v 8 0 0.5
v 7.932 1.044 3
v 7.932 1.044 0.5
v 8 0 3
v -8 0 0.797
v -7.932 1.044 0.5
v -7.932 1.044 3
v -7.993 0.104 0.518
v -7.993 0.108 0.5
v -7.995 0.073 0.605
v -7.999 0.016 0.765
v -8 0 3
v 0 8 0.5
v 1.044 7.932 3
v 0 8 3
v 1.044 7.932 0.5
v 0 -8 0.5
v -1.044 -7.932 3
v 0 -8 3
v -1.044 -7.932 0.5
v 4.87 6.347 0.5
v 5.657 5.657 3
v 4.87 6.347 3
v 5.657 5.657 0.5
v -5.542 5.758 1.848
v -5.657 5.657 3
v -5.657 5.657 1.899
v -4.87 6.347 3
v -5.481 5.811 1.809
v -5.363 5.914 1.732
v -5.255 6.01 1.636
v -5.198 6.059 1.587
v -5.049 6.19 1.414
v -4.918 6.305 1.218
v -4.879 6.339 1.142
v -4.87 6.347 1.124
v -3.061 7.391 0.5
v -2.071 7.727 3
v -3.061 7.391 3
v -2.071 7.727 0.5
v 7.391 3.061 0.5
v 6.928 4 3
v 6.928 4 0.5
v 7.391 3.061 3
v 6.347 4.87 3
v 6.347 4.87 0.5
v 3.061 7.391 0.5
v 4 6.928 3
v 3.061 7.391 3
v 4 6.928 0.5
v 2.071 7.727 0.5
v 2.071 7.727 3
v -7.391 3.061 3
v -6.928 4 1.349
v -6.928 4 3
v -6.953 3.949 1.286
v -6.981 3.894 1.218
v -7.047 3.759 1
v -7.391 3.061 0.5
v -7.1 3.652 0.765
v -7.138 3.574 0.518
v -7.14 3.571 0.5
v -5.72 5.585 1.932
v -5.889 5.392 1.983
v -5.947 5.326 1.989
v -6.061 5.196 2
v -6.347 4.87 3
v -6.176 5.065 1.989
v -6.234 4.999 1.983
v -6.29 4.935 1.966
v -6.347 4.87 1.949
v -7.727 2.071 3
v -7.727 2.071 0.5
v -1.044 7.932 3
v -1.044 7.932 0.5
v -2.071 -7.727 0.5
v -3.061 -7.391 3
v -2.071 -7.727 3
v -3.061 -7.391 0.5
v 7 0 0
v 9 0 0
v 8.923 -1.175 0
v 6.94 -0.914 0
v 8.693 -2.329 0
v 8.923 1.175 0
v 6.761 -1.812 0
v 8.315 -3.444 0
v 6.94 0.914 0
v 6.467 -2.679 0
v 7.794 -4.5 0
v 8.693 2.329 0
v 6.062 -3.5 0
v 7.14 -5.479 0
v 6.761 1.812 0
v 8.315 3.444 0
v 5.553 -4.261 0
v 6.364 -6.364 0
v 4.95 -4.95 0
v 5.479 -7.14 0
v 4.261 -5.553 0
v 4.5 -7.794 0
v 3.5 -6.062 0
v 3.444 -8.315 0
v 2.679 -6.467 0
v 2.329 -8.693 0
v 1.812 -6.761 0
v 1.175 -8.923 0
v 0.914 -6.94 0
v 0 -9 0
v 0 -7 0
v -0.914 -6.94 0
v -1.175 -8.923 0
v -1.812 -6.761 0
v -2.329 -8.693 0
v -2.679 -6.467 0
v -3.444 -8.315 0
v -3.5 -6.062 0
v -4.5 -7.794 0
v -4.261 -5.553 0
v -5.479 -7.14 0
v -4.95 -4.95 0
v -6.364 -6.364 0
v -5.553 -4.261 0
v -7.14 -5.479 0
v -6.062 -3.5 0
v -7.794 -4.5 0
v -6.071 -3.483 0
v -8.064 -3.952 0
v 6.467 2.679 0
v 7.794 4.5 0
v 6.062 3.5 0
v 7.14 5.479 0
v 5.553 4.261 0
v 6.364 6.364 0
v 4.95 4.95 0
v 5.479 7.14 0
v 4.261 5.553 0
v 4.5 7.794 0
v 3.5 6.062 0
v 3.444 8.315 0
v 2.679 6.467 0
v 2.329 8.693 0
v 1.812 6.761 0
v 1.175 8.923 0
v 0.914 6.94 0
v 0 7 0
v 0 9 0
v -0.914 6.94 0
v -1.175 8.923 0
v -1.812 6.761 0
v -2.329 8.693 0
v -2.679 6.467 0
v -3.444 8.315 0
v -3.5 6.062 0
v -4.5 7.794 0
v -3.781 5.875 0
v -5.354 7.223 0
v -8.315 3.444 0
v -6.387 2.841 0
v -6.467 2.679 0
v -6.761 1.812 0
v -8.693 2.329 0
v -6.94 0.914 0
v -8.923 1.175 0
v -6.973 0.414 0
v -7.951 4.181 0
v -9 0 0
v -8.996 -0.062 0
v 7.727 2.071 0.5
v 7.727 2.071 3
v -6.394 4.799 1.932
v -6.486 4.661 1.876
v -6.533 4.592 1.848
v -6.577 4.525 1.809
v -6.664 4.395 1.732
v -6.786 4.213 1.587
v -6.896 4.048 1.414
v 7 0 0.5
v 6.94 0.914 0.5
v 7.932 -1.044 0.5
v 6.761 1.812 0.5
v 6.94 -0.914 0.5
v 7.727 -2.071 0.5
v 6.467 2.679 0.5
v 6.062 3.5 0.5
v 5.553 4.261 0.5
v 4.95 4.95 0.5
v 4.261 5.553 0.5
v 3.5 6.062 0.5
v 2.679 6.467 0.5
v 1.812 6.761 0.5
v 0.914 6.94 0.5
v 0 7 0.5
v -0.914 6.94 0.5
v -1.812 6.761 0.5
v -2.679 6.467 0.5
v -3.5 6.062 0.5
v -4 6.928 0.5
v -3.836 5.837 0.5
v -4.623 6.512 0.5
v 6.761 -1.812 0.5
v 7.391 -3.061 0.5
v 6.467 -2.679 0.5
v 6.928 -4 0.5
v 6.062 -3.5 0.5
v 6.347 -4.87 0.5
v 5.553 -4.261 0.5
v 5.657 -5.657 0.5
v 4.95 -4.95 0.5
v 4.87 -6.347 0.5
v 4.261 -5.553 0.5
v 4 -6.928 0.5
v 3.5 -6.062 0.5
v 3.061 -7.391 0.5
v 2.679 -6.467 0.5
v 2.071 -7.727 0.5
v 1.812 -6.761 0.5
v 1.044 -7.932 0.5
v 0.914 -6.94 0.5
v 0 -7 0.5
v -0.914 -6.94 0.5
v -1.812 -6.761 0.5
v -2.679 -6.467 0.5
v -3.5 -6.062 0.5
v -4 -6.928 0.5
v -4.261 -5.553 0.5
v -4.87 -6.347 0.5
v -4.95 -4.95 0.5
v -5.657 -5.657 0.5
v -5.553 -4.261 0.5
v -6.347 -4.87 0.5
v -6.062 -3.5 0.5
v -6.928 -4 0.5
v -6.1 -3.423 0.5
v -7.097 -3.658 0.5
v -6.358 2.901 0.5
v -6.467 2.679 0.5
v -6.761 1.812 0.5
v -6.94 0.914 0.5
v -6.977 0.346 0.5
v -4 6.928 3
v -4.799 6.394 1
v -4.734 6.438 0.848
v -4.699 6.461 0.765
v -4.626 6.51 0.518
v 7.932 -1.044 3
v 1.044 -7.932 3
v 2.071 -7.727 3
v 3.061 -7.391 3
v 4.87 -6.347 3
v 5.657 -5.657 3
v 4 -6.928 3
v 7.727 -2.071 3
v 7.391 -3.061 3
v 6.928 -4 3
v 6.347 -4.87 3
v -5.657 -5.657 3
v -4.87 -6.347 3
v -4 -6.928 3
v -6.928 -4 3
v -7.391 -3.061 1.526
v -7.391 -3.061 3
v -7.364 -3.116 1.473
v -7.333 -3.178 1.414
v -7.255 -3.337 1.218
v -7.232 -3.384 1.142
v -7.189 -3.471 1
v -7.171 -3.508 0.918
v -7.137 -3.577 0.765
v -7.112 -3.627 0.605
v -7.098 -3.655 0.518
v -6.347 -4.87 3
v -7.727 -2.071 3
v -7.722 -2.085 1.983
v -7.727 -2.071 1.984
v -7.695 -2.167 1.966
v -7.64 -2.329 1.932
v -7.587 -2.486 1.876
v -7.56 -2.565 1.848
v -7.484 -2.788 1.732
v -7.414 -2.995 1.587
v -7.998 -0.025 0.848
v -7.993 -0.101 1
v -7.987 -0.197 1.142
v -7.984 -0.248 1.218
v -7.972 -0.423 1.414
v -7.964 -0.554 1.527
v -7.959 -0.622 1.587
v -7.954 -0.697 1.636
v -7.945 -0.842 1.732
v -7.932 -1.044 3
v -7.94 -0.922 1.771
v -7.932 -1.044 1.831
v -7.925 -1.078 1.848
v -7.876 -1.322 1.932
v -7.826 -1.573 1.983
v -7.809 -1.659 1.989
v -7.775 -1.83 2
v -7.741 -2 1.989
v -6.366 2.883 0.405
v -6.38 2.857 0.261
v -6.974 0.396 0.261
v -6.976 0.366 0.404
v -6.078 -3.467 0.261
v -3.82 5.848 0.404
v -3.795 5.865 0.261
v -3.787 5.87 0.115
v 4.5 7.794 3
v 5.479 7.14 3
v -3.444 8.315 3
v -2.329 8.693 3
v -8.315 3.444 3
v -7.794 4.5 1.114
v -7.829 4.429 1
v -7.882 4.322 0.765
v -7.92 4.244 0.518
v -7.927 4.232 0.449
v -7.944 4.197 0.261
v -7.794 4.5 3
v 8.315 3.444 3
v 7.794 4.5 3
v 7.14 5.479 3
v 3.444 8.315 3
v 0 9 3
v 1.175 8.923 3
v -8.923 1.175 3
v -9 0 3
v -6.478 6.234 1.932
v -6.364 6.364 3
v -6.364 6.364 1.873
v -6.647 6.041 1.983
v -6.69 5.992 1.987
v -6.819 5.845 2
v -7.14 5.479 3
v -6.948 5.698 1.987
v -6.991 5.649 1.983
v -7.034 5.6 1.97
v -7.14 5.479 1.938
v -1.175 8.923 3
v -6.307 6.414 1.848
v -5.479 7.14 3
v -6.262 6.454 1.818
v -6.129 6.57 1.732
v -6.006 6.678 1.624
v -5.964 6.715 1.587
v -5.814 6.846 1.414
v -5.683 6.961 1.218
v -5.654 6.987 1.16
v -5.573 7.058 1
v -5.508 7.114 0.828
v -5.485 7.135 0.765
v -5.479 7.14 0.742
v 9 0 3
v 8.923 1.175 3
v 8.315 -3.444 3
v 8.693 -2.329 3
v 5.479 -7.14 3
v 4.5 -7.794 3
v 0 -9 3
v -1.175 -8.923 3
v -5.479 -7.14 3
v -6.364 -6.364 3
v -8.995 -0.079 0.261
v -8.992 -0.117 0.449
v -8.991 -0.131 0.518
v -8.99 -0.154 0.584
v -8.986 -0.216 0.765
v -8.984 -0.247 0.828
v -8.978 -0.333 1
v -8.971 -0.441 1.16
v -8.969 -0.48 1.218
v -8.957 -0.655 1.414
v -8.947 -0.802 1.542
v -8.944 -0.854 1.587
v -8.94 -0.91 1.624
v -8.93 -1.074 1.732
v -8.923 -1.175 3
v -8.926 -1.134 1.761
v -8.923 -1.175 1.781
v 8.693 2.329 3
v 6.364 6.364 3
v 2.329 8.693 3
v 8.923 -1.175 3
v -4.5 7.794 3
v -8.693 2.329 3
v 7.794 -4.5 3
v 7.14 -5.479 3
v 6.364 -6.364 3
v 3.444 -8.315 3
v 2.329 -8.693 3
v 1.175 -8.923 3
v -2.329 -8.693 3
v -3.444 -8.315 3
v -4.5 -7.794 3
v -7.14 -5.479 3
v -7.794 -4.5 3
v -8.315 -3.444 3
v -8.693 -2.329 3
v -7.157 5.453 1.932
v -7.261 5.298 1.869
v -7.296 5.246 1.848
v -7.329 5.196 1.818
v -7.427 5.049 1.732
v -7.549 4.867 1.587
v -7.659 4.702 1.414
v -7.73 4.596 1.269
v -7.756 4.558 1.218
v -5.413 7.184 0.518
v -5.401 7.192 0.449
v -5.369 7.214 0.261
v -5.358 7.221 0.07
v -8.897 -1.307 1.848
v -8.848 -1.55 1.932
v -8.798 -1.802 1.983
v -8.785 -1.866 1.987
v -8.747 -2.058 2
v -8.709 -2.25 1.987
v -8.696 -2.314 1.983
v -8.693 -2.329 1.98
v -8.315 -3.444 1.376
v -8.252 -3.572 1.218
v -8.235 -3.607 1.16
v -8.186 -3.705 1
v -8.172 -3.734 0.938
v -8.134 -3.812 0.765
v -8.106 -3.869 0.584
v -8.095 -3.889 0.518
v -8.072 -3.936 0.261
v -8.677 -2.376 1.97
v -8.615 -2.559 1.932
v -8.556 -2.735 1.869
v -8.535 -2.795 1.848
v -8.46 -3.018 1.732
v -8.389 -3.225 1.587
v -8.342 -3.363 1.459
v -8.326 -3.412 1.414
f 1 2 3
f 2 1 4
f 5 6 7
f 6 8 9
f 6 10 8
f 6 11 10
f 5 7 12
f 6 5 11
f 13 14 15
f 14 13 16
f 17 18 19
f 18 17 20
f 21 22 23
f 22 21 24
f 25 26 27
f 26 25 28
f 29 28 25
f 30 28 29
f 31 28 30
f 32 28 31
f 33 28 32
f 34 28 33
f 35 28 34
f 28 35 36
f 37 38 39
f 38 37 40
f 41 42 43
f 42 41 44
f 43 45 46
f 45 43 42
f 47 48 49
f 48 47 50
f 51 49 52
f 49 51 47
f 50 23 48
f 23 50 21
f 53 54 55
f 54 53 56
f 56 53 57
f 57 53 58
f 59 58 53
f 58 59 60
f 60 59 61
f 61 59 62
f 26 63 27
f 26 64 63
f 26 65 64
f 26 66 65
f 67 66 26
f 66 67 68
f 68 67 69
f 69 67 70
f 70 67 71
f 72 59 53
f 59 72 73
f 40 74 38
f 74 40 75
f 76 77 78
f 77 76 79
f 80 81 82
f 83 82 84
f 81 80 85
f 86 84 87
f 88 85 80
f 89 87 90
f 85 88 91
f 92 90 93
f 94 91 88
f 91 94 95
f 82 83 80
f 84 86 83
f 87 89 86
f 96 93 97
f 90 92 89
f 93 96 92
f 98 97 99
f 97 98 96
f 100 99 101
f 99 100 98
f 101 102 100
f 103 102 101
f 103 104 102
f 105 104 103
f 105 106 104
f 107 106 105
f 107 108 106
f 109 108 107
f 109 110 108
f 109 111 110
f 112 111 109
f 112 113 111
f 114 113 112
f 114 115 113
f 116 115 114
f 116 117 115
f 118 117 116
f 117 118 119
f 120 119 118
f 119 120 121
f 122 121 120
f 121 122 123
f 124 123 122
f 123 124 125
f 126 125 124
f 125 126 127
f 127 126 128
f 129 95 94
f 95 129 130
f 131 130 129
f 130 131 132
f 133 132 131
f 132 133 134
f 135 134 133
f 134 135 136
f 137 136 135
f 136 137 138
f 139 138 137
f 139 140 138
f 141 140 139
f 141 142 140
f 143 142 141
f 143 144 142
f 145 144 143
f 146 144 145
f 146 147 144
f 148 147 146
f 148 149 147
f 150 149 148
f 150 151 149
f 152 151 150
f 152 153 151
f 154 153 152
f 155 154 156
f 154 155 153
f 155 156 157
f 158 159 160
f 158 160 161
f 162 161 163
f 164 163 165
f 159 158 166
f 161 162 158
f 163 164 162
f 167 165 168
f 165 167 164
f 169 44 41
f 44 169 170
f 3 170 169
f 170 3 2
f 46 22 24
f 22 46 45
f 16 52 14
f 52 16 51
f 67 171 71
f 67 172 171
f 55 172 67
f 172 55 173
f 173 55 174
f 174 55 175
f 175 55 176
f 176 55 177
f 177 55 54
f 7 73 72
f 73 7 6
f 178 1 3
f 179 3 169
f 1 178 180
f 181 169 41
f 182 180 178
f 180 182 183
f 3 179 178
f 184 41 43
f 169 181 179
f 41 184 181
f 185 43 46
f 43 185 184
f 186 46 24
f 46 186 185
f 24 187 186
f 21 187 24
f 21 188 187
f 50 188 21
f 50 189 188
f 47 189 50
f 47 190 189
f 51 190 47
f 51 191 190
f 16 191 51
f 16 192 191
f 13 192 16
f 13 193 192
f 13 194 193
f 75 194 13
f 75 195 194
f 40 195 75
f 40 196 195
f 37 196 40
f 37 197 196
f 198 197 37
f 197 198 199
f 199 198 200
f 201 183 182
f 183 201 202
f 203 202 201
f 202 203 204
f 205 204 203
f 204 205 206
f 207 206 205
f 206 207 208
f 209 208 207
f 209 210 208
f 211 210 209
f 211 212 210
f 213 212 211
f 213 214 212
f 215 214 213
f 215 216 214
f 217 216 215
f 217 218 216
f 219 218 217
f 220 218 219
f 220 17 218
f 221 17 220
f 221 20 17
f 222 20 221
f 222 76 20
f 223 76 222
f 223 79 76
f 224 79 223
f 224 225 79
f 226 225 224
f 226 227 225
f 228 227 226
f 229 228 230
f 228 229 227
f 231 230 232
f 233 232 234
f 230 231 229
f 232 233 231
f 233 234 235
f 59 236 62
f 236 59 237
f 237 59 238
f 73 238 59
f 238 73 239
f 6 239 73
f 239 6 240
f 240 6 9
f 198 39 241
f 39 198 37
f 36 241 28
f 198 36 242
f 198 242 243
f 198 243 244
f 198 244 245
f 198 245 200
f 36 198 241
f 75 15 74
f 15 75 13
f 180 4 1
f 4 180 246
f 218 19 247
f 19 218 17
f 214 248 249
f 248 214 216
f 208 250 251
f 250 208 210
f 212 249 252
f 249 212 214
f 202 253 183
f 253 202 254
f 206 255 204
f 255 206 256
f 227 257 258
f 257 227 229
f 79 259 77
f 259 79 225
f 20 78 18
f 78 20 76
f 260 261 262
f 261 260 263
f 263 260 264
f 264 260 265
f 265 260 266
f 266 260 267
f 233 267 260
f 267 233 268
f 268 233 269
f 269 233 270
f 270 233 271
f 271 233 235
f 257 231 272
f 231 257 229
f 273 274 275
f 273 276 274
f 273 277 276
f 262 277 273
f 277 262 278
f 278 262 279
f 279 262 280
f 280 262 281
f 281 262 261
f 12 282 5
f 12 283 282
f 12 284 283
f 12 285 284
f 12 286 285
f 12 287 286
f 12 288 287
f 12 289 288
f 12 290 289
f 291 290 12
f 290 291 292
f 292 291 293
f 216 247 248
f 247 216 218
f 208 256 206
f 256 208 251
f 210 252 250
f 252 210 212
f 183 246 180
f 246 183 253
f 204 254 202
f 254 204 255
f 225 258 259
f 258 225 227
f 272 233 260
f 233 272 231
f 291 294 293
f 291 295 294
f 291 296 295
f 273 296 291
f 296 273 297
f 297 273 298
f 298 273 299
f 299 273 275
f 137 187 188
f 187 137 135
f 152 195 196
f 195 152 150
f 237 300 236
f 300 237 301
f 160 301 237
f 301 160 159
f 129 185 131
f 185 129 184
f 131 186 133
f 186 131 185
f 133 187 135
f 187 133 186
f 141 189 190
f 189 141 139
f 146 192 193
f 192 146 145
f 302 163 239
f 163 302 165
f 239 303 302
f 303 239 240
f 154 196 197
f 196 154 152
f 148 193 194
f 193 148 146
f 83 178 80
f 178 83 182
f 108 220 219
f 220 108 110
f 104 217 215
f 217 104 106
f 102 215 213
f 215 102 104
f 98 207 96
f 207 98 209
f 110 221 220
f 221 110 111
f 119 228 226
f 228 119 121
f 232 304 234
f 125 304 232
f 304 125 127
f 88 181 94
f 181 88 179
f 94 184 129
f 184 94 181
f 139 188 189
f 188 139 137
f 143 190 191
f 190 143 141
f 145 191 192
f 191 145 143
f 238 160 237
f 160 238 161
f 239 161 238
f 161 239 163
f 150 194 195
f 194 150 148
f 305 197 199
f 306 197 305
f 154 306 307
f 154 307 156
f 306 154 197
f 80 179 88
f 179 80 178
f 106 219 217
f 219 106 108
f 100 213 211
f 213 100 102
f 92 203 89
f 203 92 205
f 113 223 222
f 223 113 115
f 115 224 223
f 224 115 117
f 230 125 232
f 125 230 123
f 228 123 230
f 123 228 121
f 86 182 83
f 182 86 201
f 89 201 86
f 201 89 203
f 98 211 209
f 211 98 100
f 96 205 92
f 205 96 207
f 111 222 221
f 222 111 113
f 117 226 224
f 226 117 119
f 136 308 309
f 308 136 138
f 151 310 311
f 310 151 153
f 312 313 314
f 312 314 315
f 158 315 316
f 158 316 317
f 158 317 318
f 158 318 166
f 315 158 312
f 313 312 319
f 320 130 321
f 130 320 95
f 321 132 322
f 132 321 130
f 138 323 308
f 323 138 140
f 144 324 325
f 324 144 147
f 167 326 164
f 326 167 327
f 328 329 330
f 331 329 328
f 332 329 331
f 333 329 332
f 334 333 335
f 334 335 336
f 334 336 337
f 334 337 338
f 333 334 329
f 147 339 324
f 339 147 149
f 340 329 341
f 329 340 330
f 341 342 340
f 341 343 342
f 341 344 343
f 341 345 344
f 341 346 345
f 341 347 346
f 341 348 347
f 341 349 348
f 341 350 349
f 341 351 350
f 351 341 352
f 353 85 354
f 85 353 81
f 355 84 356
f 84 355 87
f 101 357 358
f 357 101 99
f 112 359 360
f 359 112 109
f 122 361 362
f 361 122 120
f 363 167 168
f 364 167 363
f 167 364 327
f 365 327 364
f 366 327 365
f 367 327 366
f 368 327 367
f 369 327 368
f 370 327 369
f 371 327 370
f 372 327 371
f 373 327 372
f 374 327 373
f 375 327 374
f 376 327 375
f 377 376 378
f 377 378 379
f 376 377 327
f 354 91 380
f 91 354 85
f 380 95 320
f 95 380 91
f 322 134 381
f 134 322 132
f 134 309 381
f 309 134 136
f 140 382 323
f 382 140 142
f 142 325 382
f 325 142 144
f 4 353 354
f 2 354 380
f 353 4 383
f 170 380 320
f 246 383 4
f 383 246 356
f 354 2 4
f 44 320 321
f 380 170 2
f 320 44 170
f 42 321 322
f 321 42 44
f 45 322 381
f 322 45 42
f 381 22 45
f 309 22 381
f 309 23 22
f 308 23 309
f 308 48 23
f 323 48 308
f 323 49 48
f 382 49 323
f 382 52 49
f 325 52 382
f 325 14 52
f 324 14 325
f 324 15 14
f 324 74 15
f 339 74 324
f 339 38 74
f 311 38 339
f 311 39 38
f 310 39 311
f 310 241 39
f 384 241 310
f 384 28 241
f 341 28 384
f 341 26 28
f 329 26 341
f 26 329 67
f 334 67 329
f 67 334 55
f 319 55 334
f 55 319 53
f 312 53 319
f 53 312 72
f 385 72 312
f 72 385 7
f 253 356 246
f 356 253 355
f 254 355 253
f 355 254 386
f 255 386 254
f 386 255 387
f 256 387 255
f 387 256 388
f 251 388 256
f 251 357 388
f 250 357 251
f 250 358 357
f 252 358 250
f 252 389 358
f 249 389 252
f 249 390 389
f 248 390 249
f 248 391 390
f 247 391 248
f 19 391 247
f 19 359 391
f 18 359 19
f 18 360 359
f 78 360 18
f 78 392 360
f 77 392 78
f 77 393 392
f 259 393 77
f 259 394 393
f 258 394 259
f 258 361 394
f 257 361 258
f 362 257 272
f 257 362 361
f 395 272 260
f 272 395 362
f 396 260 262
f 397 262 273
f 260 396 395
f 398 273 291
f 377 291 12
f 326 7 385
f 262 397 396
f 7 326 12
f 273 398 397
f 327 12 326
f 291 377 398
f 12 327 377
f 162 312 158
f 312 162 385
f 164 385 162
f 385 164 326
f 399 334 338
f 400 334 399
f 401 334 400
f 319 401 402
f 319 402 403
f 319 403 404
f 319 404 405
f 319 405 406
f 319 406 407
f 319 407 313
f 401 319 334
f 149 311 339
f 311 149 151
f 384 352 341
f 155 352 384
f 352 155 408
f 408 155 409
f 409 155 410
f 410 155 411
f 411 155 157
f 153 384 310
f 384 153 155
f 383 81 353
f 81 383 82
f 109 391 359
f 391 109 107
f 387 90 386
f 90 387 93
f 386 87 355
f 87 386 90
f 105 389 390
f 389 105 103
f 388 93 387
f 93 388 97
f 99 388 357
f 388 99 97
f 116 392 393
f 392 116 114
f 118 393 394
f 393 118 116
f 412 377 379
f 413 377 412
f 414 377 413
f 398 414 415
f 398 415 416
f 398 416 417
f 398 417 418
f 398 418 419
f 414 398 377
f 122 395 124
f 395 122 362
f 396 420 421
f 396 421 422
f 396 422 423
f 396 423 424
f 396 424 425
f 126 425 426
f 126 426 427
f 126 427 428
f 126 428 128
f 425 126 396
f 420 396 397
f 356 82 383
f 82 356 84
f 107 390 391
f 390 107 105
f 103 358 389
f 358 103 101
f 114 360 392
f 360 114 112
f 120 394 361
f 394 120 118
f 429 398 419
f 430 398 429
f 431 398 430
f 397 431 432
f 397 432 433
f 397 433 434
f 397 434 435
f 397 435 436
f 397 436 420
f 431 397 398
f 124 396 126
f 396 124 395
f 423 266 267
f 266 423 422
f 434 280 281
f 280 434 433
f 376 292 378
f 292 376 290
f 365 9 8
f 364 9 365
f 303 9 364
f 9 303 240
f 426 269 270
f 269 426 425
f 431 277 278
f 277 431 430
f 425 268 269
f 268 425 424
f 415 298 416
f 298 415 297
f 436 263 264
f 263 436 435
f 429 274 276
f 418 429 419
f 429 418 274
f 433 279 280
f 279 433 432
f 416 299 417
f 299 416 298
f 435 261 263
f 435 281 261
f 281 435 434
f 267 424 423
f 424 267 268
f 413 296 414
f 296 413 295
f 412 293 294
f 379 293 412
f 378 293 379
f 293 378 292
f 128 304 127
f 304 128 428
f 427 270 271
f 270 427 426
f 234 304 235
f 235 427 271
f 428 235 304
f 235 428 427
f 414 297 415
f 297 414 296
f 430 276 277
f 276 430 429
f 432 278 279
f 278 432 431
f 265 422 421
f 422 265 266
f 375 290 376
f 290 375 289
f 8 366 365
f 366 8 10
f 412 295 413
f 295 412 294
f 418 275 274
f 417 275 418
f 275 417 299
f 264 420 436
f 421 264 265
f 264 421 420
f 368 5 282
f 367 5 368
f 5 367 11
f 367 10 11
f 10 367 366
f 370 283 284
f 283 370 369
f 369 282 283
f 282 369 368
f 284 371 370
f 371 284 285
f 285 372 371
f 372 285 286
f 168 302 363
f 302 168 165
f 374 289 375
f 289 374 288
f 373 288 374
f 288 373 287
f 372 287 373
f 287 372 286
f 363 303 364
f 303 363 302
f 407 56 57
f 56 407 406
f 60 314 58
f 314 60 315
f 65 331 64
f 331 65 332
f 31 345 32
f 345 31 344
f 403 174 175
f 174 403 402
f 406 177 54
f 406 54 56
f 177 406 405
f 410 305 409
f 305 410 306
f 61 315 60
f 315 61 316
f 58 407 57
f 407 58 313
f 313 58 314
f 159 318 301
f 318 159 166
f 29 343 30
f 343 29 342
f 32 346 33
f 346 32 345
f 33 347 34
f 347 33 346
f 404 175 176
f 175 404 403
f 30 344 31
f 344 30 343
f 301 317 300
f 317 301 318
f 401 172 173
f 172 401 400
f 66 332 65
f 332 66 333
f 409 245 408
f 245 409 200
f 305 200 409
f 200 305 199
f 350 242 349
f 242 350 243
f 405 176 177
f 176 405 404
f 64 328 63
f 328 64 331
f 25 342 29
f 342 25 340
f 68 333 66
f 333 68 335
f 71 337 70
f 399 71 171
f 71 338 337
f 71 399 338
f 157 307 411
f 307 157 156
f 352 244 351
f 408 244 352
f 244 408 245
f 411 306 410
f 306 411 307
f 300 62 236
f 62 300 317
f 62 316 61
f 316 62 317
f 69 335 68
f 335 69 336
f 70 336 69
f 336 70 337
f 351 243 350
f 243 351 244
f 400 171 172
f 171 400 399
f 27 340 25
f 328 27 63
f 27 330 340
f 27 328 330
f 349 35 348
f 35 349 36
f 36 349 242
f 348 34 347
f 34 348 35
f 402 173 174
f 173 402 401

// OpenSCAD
// file: ../build_environments.scad
// build_environments.scad: modules to build level sections
//

module pool(diameter=10.0, wall_height=2.0, step_width=3.0, connections=[])
{
    difference() {
        union() {
        difference() {
            cylinder(h=0.5,r1=diameter+step_width,r2=diameter+step_width,$fn=48);
            translate([0,0,-0.1])
                cylinder(h=0.7,r1=diameter,r2=diameter,$fn=48);
        }
        difference() {
            cylinder(h=wall_height,r1=diameter+step_width+1.0,r2=diameter+step_width+1.0,$fn=48);
            translate([0,0,-0.1])
                cylinder(h=wall_height+0.2,r1=diameter+step_width,r2=diameter+step_width,$fn=48);
        }
        }
    
        for (c = connections)
        {
            rotate([0,90,0]) {
                angle = atan2(c[1],c[0]);
                rotate([-angle,0,0]) {
                    cylinder(h=diameter+5.0,r1=c[2],r2=c[2],$fn=48);
                }
            }
        }
    }
}

module straight(length=10.0, width=2.0, dy1=0.0, dy2=0.0, dz=0.0)
{
    dims = [0, 0, 0, 0, 0, (dz/length)];
    matrix = [
        [ 1, dims[0], dims[1], 0 ],
        [ dims[2], 1, dims[4], 0 ],
        [ dims[5], dims[3], 1, 0 ],
        [ 0, 0, 0, 1 ]
    ];
    multmatrix(matrix)
    difference() {
        translate([dy1,0,0])
        union() {
            rotate([0,90,0]) {
                difference() {
                    cylinder(h=(length-dy1-dy2),r1=width+1.0,r2=width+1.0,$fn=24);
                    translate([0,0,-0.1])
                        cylinder(h=(length-dy1-dy2+0.2),r1=width,r2=width,$fn=24);
                }
                difference() {
                    cylinder(h=1.0,r1=width+2.0,r2=width+2.0,$fn=24);
                    translate([0,0,-0.1])
                        cylinder(h=1.2,r1=width,r2=width,$fn=24);
                }
                translate([0,0,(length-dy1-dy2)-1.0]) {
                    difference() {
                        cylinder(h=1.0,r1=width+2.0,r2=width+2.0,$fn=24);
                        translate([0,0,-0.1])
                            cylinder(h=1.2,r1=width,r2=width,$fn=24);
                    }
                }
            }
        }
        translate([0,0,-(2*width+4.0)/2])
            cube([3*length,3*length,2*width+4.0],center=true);
    }
}

module curve(p0=[0,0], center=[0,0], dir=1, angle=0.0, width=2.0)
{
    radius = sqrt((p0[0]-center[0])*(p0[0]-center[0]) + (p0[1]-center[1])*(p0[1]-center[1]));
    if (dir == 0) {
        difference() {
            rotate([0,0,-90])
            difference() {
                rotate_extrude(angle = angle, convexity = 10, $fn=32)
                    translate([radius, 0, 0])
                        circle(r = width+1.0,$fn=24);
                rotate([0,0,-1.0])
                    rotate_extrude(angle = angle+2.0, convexity = 10, $fn=32)
                        translate([radius, 0, 0])
                            circle(r = width,$fn=24);
            }
            translate([0,0,-(2*width+4.0)/2])
                cube([5*radius,5*radius,2*width+4.0],center=true);
        }
    }
    else {
        difference() {
            rotate([0,0,90])
            difference() {
                rotate_extrude(angle = -angle, convexity = 10, $fn=32)
                    translate([radius, 0, 0])
                        circle(r = width+1.0,$fn=24);
                rotate([0,0,1.0])
                    rotate_extrude(angle = -angle-2.0, convexity = 10, $fn=32)
                        translate([radius, 0, 0])
                            circle(r = width,$fn=24);
            }
            translate([0,0,-(2*width+4.0)/2])
                cube([5*radius,5*radius,2*width+4.0],center=true);
        }
    }

}

// test pool
//pool(diameter=12.0000, wall_height=3.0000, step_width=3.0000, connections=[[0.0000,-26.0000,2.0000], [23.6074,0.0000,2.0000]]);

// test straight, slope
//straight(length=26.0000, width=2.0000, dy1=11.8322, dy2=6.7082, dz=0.0000);
//straight(length=29.1549, width=12.0000, dy1=0.0000, dy2=0.0000, dz=-15.0000);

// test curve
//curve(p0=[23.6074, 0.0000], center=[23.6074, 5.0000], dir=0, angle=60.1011, width=2.0000);
//curve(p0=[33.6426, 12.4219], center=[37.9771, 9.9295], dir=1, angle=120.4627, width=2.0000);
// main file
use <../build_environments.scad>;
pool(diameter=7.0000, wall_height=3.0000, step_width=1.0000, connections=[[-17.0000,-4.0000,2.0000], [-14.0000,12.0000,2.0000]]);
